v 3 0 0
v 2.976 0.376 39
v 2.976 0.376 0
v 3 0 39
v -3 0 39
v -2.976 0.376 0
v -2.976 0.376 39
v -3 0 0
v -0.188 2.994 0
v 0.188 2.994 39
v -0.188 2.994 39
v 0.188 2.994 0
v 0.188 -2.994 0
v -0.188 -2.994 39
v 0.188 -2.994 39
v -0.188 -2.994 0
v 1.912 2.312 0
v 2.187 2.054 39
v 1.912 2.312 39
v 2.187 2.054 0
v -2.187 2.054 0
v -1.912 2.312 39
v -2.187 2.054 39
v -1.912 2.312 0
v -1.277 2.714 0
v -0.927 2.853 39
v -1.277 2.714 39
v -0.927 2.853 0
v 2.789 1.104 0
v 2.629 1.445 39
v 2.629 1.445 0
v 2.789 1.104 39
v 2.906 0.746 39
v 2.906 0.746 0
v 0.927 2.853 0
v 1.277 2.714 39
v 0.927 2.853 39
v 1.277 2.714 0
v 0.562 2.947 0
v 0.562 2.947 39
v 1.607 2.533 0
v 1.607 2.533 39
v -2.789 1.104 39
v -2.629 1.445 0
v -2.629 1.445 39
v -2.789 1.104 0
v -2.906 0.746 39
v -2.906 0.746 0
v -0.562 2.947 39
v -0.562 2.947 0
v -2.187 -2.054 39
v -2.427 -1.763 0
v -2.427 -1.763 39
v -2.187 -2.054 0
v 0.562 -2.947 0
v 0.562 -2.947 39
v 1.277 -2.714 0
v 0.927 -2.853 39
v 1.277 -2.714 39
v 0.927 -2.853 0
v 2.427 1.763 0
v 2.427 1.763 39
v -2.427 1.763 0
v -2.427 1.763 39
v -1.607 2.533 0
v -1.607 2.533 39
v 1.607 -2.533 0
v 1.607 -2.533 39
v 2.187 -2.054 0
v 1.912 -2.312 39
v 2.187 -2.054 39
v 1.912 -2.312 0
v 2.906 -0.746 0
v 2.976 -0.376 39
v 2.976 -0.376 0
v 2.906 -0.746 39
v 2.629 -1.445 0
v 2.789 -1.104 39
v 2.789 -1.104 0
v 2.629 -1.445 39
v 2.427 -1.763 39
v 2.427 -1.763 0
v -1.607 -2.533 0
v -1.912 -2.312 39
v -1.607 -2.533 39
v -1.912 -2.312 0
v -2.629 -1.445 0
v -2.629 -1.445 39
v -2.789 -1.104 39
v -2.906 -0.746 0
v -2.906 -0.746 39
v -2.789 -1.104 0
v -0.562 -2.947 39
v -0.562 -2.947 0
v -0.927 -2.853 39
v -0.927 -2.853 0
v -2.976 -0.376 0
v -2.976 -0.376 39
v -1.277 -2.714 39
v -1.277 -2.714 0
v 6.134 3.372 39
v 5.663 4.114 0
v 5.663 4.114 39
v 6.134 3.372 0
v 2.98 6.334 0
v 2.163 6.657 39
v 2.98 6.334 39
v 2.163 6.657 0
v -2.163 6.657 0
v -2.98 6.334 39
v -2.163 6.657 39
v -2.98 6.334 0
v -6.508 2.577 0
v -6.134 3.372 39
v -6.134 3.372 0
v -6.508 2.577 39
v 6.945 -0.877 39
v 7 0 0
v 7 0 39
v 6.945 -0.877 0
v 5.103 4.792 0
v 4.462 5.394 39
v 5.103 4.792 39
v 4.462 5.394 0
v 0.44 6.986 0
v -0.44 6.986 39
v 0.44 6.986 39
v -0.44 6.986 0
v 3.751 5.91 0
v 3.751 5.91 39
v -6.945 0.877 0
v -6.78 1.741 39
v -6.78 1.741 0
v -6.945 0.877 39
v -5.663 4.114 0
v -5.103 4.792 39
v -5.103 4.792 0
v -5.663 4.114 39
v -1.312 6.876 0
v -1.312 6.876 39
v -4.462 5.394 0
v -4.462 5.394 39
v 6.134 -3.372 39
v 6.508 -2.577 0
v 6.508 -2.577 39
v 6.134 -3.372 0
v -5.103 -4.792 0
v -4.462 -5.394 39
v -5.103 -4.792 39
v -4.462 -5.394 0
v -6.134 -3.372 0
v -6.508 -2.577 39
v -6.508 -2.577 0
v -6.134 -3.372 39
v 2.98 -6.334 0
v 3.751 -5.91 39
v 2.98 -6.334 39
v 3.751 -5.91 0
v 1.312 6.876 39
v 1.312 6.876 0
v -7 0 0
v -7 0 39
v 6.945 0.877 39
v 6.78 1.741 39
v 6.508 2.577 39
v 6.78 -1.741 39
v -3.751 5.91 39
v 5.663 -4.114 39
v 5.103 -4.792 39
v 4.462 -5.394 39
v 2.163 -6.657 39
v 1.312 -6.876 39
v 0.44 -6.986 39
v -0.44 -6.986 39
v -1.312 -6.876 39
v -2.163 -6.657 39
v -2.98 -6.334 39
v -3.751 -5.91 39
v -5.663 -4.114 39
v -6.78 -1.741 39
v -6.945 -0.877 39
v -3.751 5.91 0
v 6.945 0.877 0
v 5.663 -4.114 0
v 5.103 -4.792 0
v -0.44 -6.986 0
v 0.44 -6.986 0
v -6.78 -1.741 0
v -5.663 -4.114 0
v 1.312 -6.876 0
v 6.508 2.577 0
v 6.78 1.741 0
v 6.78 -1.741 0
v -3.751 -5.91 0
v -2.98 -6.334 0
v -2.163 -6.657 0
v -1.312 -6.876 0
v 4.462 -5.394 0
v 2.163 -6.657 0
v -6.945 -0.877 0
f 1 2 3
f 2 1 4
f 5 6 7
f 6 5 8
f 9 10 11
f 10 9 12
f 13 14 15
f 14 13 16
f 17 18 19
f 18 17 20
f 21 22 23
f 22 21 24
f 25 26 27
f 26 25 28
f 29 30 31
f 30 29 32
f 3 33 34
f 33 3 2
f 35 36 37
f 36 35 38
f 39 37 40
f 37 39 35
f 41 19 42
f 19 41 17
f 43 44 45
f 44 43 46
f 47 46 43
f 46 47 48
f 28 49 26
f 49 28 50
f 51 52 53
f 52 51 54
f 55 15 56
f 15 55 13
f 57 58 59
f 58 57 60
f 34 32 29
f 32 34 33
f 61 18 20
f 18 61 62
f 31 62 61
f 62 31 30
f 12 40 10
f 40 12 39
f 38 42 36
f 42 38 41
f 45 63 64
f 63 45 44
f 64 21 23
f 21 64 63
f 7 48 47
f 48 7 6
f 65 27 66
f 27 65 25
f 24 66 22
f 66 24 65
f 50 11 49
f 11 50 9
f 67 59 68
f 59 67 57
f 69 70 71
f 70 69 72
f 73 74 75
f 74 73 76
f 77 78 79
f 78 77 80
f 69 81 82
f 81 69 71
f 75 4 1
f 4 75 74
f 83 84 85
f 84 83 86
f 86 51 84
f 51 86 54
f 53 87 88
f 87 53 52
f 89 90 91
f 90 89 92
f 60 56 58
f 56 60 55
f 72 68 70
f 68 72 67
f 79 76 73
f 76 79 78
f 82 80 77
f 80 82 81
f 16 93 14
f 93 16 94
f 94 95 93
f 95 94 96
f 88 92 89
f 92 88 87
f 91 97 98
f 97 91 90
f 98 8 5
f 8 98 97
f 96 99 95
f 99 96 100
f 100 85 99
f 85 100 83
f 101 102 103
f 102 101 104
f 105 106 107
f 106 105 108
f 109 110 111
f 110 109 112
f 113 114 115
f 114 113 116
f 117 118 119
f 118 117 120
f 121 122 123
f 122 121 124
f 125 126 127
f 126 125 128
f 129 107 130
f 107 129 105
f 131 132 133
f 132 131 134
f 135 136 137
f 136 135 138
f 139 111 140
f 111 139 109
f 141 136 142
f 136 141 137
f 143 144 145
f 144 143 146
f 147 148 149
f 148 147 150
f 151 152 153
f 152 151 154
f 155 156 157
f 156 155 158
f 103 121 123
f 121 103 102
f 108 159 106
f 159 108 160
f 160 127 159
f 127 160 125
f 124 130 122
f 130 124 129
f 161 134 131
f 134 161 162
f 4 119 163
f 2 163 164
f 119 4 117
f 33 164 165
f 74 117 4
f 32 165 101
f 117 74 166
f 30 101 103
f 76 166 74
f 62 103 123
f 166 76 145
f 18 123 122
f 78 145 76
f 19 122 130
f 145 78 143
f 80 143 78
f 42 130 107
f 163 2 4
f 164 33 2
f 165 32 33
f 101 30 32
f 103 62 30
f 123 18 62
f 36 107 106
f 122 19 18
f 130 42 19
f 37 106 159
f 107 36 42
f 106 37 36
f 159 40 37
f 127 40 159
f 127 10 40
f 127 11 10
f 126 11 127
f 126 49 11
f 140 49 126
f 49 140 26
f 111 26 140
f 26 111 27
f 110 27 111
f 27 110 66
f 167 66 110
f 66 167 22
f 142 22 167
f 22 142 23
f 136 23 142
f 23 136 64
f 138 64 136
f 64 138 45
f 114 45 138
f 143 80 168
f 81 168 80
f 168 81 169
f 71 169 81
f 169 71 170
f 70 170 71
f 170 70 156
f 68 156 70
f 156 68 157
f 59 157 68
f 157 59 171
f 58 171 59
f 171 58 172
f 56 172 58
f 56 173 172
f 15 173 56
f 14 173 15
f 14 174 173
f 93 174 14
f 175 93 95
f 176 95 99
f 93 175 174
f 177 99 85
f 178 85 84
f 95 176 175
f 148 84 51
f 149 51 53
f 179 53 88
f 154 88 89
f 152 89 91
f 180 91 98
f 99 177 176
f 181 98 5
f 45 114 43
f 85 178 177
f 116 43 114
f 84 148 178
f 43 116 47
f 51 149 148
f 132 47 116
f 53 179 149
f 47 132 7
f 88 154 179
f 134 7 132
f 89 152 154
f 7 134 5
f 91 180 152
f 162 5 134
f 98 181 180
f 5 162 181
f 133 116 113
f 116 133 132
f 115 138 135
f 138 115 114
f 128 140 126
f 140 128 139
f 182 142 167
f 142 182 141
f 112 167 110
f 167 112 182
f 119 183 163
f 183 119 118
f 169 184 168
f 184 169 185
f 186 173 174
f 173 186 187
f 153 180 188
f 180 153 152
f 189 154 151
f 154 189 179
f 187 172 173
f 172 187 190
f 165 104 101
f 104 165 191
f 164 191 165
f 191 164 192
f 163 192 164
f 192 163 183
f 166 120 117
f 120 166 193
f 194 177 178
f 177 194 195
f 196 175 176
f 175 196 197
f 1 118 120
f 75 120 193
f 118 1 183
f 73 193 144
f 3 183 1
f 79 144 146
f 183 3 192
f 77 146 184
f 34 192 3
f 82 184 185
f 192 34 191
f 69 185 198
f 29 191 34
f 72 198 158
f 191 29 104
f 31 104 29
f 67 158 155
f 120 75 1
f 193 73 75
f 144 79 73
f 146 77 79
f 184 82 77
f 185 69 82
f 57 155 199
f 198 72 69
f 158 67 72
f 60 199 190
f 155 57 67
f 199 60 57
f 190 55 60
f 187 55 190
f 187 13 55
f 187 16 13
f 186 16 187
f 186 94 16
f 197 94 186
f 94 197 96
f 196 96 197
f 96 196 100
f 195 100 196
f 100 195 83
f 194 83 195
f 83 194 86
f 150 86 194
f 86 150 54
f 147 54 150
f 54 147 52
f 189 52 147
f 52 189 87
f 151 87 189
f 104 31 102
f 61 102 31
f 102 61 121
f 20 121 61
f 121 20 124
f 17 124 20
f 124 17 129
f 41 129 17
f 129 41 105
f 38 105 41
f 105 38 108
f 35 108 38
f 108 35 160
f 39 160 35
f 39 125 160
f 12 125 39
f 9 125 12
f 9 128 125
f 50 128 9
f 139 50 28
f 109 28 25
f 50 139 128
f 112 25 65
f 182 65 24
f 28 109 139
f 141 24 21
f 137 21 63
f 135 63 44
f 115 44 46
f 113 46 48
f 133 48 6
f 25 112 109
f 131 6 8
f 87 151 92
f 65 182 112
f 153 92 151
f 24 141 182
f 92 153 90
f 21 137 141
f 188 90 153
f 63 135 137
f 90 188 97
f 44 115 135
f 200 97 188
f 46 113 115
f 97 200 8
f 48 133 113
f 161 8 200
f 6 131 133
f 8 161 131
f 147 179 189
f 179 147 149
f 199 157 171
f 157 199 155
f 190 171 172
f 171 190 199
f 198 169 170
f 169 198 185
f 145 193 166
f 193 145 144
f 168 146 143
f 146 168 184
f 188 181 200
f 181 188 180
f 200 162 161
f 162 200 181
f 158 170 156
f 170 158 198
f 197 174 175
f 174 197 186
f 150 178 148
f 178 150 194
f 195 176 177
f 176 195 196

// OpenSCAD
$fn = 50;


difference() {
	union() {
		cylinder(h = 39, r = 7.0000000000);
	}
	union() {
		translate(v = [0.0000000000, 0.0000000000, -100.0000000000]) {
			cylinder(h = 200, r = 3.0000000000);
		}
		cylinder(h = 39, r = 1.5000000000);
		cylinder(h = 39, r = 1.5000000000);
		cylinder(h = 39, r = 1.5000000000);
	}
}
